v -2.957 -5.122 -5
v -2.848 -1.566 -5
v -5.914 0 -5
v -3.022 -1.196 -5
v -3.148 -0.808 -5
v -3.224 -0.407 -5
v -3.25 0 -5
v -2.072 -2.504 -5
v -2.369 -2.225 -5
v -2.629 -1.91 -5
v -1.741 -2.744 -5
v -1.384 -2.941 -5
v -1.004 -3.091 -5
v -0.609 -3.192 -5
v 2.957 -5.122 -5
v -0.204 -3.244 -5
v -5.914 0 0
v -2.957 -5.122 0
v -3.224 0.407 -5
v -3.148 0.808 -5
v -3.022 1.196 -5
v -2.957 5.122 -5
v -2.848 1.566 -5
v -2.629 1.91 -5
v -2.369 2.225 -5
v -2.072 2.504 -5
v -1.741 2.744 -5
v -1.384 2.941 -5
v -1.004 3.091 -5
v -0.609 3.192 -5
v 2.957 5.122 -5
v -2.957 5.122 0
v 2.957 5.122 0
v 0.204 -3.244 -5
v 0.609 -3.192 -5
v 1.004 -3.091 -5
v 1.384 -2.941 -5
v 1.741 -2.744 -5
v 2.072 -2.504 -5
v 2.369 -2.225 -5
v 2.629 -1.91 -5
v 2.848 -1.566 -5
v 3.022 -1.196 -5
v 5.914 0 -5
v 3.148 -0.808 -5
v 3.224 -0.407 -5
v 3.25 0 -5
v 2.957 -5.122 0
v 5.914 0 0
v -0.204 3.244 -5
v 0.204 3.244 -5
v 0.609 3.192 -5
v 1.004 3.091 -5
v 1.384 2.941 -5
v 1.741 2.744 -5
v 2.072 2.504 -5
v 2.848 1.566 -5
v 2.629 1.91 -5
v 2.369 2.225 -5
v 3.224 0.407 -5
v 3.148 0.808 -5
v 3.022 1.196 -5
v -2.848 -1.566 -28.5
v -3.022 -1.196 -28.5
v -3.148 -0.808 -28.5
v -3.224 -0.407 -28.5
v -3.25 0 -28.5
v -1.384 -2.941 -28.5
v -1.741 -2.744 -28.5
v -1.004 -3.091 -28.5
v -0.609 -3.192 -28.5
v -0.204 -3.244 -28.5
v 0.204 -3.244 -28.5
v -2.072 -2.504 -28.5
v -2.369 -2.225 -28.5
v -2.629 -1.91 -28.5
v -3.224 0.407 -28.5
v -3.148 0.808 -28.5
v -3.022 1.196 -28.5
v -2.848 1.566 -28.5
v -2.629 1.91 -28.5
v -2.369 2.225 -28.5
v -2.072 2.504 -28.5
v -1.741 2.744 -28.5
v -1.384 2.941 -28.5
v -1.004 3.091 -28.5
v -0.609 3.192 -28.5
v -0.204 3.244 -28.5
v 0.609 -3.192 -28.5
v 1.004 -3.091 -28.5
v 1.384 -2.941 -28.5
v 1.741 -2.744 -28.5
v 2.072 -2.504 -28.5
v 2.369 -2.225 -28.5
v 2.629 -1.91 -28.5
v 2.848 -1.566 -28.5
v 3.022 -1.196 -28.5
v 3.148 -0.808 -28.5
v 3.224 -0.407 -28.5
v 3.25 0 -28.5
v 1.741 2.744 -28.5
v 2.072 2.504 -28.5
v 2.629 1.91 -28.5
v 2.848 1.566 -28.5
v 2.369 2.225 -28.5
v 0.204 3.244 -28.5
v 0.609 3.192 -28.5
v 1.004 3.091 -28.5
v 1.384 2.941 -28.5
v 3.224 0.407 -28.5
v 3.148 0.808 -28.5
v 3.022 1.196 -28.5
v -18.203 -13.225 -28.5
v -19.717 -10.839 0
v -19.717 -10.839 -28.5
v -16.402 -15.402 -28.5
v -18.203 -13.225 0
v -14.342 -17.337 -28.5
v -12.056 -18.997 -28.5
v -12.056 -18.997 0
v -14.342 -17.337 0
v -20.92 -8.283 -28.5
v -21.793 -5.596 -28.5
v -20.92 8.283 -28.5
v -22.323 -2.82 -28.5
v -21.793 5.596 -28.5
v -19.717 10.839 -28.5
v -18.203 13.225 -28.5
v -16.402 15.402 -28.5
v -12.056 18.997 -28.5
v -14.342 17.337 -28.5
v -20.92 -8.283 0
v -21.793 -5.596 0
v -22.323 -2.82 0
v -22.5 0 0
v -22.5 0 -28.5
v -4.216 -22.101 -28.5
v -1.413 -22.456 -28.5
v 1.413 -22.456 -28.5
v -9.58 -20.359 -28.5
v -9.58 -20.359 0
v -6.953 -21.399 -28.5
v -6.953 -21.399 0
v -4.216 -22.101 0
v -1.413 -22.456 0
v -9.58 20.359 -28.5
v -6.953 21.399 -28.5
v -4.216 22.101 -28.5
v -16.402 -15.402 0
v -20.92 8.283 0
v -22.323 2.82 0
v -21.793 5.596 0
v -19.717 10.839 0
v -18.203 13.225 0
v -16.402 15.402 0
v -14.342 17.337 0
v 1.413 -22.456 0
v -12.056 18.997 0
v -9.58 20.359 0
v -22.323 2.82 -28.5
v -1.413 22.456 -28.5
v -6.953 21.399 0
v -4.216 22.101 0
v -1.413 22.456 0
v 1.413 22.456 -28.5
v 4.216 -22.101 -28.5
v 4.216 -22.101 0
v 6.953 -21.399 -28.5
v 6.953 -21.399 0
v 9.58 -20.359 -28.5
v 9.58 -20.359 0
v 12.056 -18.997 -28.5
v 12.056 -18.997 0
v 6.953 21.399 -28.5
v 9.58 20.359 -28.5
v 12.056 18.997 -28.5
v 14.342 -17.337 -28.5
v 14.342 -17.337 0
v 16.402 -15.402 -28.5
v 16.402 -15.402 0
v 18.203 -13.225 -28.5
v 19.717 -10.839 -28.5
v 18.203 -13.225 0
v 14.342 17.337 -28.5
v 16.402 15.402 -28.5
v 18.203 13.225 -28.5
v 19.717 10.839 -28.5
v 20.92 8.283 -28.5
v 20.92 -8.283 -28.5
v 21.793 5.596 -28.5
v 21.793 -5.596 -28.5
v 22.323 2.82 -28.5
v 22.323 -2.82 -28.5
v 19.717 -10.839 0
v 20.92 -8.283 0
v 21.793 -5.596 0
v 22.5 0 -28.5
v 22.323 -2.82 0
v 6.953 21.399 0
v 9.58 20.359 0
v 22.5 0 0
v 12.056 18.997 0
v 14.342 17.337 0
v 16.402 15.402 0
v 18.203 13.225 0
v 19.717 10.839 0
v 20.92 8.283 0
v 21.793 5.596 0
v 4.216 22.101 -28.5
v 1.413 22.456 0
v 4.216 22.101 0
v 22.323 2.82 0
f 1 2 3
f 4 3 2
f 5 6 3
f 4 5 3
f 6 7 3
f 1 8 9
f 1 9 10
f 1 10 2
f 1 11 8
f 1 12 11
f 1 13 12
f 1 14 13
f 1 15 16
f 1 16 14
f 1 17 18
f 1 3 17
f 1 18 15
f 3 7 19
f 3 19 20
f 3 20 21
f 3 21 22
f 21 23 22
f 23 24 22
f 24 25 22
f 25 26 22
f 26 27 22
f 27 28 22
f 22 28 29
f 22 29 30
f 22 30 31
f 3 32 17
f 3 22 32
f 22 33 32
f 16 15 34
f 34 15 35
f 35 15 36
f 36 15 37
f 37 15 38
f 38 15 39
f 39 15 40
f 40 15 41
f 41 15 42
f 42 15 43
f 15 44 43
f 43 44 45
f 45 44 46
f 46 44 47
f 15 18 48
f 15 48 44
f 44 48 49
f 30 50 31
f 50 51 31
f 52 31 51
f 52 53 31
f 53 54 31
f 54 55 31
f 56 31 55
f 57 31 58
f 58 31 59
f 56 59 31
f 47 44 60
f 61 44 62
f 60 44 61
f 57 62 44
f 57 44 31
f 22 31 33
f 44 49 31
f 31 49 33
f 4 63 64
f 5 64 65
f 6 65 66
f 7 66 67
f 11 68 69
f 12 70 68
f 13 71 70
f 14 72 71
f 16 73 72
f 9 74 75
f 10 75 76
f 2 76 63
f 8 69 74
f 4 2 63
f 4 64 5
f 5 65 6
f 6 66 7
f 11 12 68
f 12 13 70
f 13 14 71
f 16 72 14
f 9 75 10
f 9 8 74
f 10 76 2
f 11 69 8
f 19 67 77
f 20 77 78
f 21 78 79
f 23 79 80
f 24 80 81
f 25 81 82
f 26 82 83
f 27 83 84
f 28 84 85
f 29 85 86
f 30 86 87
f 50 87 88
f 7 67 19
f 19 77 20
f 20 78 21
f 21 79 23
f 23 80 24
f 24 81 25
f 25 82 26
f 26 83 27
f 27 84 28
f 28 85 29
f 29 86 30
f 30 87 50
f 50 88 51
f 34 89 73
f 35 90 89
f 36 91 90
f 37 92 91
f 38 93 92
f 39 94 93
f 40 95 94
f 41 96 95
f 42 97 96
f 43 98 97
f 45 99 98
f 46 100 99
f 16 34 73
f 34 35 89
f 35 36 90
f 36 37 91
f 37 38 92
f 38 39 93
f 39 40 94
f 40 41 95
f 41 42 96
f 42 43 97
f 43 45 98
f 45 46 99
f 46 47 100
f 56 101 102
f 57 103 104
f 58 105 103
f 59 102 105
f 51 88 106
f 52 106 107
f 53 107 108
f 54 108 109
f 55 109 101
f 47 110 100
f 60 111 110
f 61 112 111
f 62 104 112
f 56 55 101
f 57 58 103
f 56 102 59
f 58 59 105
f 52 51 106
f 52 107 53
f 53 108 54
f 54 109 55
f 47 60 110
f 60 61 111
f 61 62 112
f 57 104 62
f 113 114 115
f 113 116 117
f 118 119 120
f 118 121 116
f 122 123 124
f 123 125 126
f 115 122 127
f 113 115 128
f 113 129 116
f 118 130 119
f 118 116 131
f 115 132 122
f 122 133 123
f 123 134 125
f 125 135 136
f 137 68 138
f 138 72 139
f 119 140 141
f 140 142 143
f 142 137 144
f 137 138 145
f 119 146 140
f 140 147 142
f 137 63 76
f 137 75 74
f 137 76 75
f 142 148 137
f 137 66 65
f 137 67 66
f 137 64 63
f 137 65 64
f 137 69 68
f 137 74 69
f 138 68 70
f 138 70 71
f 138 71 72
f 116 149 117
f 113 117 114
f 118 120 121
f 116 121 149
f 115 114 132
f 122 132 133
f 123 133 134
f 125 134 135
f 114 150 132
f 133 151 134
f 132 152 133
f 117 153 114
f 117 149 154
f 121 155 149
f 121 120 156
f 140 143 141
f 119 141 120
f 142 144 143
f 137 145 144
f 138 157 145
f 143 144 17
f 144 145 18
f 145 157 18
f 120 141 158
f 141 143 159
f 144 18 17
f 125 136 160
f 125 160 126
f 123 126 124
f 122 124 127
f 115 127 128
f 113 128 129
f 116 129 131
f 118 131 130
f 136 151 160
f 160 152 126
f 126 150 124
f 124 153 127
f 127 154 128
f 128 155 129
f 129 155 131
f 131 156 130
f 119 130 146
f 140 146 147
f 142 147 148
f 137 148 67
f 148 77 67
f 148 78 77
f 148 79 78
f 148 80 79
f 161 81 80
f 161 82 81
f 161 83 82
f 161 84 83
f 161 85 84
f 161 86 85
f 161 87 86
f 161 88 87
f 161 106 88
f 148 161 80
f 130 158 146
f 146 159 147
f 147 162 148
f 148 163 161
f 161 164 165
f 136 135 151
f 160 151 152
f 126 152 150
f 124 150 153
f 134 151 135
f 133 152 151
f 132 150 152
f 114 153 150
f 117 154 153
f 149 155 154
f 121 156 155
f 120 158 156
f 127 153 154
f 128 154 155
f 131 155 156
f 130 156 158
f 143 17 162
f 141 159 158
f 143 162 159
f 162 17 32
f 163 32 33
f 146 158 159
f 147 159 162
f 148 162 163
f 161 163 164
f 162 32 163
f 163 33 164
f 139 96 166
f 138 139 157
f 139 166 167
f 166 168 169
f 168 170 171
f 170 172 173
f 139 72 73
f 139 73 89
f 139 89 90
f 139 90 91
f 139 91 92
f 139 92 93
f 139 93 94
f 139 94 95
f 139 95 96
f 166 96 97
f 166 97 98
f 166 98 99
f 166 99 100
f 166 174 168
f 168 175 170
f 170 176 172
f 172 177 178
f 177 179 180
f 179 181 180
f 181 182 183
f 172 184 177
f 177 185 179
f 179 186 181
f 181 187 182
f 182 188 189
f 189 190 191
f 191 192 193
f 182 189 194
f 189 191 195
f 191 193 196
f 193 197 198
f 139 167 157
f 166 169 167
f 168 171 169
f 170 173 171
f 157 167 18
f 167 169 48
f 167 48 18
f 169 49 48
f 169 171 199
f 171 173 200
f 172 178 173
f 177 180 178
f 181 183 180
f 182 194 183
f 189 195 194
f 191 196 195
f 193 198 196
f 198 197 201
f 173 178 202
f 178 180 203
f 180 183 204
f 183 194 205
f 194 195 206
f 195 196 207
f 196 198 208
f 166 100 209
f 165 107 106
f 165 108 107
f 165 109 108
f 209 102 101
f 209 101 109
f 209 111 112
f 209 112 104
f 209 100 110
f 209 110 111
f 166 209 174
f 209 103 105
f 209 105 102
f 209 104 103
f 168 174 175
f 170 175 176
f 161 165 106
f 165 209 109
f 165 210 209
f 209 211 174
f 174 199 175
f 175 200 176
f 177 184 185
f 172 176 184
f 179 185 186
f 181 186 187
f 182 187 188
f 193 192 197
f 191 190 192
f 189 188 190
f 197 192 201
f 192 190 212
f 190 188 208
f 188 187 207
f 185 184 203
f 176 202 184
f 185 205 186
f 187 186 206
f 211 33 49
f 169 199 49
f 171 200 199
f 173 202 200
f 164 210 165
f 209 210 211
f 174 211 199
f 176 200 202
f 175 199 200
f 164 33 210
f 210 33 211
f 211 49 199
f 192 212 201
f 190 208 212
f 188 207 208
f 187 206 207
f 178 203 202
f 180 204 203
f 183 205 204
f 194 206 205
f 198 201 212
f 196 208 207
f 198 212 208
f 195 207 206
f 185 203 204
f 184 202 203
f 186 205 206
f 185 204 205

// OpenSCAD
$fn = 50;

difference() {
	union() {
		translate(v = [0, 0, -28.5]) {
			cylinder(h = 28.5, r = 22.5);
		}
		#translate(v = [0, 0, -30.0]) {
			cylinder(h = 30, r = 2.875);
		}
	}
	union() {
		translate(v = [0, 0, 0]) {
			rotate(a = [0, 0, 0]) {
				difference() {
					union() {
						translate(v = [0, 0, -5]) {
							linear_extrude(height = 5) {
								polygon(points = [[5.914249999999999, 0.0], [2.957125, 5.1218907443321156], [-2.9571249999999982, 5.1218907443321156], [-5.914249999999999, 7.242867331857232e-16], [-2.9571250000000022, -5.121890744332115], [2.9571249999999956, -5.121890744332118]]);
							}
						}
					}
					union();
				}
			}
		}
		#translate(v = [0, 0, -100.0]) {
			cylinder(h = 200, r = 3.25);
		}
	}
}
